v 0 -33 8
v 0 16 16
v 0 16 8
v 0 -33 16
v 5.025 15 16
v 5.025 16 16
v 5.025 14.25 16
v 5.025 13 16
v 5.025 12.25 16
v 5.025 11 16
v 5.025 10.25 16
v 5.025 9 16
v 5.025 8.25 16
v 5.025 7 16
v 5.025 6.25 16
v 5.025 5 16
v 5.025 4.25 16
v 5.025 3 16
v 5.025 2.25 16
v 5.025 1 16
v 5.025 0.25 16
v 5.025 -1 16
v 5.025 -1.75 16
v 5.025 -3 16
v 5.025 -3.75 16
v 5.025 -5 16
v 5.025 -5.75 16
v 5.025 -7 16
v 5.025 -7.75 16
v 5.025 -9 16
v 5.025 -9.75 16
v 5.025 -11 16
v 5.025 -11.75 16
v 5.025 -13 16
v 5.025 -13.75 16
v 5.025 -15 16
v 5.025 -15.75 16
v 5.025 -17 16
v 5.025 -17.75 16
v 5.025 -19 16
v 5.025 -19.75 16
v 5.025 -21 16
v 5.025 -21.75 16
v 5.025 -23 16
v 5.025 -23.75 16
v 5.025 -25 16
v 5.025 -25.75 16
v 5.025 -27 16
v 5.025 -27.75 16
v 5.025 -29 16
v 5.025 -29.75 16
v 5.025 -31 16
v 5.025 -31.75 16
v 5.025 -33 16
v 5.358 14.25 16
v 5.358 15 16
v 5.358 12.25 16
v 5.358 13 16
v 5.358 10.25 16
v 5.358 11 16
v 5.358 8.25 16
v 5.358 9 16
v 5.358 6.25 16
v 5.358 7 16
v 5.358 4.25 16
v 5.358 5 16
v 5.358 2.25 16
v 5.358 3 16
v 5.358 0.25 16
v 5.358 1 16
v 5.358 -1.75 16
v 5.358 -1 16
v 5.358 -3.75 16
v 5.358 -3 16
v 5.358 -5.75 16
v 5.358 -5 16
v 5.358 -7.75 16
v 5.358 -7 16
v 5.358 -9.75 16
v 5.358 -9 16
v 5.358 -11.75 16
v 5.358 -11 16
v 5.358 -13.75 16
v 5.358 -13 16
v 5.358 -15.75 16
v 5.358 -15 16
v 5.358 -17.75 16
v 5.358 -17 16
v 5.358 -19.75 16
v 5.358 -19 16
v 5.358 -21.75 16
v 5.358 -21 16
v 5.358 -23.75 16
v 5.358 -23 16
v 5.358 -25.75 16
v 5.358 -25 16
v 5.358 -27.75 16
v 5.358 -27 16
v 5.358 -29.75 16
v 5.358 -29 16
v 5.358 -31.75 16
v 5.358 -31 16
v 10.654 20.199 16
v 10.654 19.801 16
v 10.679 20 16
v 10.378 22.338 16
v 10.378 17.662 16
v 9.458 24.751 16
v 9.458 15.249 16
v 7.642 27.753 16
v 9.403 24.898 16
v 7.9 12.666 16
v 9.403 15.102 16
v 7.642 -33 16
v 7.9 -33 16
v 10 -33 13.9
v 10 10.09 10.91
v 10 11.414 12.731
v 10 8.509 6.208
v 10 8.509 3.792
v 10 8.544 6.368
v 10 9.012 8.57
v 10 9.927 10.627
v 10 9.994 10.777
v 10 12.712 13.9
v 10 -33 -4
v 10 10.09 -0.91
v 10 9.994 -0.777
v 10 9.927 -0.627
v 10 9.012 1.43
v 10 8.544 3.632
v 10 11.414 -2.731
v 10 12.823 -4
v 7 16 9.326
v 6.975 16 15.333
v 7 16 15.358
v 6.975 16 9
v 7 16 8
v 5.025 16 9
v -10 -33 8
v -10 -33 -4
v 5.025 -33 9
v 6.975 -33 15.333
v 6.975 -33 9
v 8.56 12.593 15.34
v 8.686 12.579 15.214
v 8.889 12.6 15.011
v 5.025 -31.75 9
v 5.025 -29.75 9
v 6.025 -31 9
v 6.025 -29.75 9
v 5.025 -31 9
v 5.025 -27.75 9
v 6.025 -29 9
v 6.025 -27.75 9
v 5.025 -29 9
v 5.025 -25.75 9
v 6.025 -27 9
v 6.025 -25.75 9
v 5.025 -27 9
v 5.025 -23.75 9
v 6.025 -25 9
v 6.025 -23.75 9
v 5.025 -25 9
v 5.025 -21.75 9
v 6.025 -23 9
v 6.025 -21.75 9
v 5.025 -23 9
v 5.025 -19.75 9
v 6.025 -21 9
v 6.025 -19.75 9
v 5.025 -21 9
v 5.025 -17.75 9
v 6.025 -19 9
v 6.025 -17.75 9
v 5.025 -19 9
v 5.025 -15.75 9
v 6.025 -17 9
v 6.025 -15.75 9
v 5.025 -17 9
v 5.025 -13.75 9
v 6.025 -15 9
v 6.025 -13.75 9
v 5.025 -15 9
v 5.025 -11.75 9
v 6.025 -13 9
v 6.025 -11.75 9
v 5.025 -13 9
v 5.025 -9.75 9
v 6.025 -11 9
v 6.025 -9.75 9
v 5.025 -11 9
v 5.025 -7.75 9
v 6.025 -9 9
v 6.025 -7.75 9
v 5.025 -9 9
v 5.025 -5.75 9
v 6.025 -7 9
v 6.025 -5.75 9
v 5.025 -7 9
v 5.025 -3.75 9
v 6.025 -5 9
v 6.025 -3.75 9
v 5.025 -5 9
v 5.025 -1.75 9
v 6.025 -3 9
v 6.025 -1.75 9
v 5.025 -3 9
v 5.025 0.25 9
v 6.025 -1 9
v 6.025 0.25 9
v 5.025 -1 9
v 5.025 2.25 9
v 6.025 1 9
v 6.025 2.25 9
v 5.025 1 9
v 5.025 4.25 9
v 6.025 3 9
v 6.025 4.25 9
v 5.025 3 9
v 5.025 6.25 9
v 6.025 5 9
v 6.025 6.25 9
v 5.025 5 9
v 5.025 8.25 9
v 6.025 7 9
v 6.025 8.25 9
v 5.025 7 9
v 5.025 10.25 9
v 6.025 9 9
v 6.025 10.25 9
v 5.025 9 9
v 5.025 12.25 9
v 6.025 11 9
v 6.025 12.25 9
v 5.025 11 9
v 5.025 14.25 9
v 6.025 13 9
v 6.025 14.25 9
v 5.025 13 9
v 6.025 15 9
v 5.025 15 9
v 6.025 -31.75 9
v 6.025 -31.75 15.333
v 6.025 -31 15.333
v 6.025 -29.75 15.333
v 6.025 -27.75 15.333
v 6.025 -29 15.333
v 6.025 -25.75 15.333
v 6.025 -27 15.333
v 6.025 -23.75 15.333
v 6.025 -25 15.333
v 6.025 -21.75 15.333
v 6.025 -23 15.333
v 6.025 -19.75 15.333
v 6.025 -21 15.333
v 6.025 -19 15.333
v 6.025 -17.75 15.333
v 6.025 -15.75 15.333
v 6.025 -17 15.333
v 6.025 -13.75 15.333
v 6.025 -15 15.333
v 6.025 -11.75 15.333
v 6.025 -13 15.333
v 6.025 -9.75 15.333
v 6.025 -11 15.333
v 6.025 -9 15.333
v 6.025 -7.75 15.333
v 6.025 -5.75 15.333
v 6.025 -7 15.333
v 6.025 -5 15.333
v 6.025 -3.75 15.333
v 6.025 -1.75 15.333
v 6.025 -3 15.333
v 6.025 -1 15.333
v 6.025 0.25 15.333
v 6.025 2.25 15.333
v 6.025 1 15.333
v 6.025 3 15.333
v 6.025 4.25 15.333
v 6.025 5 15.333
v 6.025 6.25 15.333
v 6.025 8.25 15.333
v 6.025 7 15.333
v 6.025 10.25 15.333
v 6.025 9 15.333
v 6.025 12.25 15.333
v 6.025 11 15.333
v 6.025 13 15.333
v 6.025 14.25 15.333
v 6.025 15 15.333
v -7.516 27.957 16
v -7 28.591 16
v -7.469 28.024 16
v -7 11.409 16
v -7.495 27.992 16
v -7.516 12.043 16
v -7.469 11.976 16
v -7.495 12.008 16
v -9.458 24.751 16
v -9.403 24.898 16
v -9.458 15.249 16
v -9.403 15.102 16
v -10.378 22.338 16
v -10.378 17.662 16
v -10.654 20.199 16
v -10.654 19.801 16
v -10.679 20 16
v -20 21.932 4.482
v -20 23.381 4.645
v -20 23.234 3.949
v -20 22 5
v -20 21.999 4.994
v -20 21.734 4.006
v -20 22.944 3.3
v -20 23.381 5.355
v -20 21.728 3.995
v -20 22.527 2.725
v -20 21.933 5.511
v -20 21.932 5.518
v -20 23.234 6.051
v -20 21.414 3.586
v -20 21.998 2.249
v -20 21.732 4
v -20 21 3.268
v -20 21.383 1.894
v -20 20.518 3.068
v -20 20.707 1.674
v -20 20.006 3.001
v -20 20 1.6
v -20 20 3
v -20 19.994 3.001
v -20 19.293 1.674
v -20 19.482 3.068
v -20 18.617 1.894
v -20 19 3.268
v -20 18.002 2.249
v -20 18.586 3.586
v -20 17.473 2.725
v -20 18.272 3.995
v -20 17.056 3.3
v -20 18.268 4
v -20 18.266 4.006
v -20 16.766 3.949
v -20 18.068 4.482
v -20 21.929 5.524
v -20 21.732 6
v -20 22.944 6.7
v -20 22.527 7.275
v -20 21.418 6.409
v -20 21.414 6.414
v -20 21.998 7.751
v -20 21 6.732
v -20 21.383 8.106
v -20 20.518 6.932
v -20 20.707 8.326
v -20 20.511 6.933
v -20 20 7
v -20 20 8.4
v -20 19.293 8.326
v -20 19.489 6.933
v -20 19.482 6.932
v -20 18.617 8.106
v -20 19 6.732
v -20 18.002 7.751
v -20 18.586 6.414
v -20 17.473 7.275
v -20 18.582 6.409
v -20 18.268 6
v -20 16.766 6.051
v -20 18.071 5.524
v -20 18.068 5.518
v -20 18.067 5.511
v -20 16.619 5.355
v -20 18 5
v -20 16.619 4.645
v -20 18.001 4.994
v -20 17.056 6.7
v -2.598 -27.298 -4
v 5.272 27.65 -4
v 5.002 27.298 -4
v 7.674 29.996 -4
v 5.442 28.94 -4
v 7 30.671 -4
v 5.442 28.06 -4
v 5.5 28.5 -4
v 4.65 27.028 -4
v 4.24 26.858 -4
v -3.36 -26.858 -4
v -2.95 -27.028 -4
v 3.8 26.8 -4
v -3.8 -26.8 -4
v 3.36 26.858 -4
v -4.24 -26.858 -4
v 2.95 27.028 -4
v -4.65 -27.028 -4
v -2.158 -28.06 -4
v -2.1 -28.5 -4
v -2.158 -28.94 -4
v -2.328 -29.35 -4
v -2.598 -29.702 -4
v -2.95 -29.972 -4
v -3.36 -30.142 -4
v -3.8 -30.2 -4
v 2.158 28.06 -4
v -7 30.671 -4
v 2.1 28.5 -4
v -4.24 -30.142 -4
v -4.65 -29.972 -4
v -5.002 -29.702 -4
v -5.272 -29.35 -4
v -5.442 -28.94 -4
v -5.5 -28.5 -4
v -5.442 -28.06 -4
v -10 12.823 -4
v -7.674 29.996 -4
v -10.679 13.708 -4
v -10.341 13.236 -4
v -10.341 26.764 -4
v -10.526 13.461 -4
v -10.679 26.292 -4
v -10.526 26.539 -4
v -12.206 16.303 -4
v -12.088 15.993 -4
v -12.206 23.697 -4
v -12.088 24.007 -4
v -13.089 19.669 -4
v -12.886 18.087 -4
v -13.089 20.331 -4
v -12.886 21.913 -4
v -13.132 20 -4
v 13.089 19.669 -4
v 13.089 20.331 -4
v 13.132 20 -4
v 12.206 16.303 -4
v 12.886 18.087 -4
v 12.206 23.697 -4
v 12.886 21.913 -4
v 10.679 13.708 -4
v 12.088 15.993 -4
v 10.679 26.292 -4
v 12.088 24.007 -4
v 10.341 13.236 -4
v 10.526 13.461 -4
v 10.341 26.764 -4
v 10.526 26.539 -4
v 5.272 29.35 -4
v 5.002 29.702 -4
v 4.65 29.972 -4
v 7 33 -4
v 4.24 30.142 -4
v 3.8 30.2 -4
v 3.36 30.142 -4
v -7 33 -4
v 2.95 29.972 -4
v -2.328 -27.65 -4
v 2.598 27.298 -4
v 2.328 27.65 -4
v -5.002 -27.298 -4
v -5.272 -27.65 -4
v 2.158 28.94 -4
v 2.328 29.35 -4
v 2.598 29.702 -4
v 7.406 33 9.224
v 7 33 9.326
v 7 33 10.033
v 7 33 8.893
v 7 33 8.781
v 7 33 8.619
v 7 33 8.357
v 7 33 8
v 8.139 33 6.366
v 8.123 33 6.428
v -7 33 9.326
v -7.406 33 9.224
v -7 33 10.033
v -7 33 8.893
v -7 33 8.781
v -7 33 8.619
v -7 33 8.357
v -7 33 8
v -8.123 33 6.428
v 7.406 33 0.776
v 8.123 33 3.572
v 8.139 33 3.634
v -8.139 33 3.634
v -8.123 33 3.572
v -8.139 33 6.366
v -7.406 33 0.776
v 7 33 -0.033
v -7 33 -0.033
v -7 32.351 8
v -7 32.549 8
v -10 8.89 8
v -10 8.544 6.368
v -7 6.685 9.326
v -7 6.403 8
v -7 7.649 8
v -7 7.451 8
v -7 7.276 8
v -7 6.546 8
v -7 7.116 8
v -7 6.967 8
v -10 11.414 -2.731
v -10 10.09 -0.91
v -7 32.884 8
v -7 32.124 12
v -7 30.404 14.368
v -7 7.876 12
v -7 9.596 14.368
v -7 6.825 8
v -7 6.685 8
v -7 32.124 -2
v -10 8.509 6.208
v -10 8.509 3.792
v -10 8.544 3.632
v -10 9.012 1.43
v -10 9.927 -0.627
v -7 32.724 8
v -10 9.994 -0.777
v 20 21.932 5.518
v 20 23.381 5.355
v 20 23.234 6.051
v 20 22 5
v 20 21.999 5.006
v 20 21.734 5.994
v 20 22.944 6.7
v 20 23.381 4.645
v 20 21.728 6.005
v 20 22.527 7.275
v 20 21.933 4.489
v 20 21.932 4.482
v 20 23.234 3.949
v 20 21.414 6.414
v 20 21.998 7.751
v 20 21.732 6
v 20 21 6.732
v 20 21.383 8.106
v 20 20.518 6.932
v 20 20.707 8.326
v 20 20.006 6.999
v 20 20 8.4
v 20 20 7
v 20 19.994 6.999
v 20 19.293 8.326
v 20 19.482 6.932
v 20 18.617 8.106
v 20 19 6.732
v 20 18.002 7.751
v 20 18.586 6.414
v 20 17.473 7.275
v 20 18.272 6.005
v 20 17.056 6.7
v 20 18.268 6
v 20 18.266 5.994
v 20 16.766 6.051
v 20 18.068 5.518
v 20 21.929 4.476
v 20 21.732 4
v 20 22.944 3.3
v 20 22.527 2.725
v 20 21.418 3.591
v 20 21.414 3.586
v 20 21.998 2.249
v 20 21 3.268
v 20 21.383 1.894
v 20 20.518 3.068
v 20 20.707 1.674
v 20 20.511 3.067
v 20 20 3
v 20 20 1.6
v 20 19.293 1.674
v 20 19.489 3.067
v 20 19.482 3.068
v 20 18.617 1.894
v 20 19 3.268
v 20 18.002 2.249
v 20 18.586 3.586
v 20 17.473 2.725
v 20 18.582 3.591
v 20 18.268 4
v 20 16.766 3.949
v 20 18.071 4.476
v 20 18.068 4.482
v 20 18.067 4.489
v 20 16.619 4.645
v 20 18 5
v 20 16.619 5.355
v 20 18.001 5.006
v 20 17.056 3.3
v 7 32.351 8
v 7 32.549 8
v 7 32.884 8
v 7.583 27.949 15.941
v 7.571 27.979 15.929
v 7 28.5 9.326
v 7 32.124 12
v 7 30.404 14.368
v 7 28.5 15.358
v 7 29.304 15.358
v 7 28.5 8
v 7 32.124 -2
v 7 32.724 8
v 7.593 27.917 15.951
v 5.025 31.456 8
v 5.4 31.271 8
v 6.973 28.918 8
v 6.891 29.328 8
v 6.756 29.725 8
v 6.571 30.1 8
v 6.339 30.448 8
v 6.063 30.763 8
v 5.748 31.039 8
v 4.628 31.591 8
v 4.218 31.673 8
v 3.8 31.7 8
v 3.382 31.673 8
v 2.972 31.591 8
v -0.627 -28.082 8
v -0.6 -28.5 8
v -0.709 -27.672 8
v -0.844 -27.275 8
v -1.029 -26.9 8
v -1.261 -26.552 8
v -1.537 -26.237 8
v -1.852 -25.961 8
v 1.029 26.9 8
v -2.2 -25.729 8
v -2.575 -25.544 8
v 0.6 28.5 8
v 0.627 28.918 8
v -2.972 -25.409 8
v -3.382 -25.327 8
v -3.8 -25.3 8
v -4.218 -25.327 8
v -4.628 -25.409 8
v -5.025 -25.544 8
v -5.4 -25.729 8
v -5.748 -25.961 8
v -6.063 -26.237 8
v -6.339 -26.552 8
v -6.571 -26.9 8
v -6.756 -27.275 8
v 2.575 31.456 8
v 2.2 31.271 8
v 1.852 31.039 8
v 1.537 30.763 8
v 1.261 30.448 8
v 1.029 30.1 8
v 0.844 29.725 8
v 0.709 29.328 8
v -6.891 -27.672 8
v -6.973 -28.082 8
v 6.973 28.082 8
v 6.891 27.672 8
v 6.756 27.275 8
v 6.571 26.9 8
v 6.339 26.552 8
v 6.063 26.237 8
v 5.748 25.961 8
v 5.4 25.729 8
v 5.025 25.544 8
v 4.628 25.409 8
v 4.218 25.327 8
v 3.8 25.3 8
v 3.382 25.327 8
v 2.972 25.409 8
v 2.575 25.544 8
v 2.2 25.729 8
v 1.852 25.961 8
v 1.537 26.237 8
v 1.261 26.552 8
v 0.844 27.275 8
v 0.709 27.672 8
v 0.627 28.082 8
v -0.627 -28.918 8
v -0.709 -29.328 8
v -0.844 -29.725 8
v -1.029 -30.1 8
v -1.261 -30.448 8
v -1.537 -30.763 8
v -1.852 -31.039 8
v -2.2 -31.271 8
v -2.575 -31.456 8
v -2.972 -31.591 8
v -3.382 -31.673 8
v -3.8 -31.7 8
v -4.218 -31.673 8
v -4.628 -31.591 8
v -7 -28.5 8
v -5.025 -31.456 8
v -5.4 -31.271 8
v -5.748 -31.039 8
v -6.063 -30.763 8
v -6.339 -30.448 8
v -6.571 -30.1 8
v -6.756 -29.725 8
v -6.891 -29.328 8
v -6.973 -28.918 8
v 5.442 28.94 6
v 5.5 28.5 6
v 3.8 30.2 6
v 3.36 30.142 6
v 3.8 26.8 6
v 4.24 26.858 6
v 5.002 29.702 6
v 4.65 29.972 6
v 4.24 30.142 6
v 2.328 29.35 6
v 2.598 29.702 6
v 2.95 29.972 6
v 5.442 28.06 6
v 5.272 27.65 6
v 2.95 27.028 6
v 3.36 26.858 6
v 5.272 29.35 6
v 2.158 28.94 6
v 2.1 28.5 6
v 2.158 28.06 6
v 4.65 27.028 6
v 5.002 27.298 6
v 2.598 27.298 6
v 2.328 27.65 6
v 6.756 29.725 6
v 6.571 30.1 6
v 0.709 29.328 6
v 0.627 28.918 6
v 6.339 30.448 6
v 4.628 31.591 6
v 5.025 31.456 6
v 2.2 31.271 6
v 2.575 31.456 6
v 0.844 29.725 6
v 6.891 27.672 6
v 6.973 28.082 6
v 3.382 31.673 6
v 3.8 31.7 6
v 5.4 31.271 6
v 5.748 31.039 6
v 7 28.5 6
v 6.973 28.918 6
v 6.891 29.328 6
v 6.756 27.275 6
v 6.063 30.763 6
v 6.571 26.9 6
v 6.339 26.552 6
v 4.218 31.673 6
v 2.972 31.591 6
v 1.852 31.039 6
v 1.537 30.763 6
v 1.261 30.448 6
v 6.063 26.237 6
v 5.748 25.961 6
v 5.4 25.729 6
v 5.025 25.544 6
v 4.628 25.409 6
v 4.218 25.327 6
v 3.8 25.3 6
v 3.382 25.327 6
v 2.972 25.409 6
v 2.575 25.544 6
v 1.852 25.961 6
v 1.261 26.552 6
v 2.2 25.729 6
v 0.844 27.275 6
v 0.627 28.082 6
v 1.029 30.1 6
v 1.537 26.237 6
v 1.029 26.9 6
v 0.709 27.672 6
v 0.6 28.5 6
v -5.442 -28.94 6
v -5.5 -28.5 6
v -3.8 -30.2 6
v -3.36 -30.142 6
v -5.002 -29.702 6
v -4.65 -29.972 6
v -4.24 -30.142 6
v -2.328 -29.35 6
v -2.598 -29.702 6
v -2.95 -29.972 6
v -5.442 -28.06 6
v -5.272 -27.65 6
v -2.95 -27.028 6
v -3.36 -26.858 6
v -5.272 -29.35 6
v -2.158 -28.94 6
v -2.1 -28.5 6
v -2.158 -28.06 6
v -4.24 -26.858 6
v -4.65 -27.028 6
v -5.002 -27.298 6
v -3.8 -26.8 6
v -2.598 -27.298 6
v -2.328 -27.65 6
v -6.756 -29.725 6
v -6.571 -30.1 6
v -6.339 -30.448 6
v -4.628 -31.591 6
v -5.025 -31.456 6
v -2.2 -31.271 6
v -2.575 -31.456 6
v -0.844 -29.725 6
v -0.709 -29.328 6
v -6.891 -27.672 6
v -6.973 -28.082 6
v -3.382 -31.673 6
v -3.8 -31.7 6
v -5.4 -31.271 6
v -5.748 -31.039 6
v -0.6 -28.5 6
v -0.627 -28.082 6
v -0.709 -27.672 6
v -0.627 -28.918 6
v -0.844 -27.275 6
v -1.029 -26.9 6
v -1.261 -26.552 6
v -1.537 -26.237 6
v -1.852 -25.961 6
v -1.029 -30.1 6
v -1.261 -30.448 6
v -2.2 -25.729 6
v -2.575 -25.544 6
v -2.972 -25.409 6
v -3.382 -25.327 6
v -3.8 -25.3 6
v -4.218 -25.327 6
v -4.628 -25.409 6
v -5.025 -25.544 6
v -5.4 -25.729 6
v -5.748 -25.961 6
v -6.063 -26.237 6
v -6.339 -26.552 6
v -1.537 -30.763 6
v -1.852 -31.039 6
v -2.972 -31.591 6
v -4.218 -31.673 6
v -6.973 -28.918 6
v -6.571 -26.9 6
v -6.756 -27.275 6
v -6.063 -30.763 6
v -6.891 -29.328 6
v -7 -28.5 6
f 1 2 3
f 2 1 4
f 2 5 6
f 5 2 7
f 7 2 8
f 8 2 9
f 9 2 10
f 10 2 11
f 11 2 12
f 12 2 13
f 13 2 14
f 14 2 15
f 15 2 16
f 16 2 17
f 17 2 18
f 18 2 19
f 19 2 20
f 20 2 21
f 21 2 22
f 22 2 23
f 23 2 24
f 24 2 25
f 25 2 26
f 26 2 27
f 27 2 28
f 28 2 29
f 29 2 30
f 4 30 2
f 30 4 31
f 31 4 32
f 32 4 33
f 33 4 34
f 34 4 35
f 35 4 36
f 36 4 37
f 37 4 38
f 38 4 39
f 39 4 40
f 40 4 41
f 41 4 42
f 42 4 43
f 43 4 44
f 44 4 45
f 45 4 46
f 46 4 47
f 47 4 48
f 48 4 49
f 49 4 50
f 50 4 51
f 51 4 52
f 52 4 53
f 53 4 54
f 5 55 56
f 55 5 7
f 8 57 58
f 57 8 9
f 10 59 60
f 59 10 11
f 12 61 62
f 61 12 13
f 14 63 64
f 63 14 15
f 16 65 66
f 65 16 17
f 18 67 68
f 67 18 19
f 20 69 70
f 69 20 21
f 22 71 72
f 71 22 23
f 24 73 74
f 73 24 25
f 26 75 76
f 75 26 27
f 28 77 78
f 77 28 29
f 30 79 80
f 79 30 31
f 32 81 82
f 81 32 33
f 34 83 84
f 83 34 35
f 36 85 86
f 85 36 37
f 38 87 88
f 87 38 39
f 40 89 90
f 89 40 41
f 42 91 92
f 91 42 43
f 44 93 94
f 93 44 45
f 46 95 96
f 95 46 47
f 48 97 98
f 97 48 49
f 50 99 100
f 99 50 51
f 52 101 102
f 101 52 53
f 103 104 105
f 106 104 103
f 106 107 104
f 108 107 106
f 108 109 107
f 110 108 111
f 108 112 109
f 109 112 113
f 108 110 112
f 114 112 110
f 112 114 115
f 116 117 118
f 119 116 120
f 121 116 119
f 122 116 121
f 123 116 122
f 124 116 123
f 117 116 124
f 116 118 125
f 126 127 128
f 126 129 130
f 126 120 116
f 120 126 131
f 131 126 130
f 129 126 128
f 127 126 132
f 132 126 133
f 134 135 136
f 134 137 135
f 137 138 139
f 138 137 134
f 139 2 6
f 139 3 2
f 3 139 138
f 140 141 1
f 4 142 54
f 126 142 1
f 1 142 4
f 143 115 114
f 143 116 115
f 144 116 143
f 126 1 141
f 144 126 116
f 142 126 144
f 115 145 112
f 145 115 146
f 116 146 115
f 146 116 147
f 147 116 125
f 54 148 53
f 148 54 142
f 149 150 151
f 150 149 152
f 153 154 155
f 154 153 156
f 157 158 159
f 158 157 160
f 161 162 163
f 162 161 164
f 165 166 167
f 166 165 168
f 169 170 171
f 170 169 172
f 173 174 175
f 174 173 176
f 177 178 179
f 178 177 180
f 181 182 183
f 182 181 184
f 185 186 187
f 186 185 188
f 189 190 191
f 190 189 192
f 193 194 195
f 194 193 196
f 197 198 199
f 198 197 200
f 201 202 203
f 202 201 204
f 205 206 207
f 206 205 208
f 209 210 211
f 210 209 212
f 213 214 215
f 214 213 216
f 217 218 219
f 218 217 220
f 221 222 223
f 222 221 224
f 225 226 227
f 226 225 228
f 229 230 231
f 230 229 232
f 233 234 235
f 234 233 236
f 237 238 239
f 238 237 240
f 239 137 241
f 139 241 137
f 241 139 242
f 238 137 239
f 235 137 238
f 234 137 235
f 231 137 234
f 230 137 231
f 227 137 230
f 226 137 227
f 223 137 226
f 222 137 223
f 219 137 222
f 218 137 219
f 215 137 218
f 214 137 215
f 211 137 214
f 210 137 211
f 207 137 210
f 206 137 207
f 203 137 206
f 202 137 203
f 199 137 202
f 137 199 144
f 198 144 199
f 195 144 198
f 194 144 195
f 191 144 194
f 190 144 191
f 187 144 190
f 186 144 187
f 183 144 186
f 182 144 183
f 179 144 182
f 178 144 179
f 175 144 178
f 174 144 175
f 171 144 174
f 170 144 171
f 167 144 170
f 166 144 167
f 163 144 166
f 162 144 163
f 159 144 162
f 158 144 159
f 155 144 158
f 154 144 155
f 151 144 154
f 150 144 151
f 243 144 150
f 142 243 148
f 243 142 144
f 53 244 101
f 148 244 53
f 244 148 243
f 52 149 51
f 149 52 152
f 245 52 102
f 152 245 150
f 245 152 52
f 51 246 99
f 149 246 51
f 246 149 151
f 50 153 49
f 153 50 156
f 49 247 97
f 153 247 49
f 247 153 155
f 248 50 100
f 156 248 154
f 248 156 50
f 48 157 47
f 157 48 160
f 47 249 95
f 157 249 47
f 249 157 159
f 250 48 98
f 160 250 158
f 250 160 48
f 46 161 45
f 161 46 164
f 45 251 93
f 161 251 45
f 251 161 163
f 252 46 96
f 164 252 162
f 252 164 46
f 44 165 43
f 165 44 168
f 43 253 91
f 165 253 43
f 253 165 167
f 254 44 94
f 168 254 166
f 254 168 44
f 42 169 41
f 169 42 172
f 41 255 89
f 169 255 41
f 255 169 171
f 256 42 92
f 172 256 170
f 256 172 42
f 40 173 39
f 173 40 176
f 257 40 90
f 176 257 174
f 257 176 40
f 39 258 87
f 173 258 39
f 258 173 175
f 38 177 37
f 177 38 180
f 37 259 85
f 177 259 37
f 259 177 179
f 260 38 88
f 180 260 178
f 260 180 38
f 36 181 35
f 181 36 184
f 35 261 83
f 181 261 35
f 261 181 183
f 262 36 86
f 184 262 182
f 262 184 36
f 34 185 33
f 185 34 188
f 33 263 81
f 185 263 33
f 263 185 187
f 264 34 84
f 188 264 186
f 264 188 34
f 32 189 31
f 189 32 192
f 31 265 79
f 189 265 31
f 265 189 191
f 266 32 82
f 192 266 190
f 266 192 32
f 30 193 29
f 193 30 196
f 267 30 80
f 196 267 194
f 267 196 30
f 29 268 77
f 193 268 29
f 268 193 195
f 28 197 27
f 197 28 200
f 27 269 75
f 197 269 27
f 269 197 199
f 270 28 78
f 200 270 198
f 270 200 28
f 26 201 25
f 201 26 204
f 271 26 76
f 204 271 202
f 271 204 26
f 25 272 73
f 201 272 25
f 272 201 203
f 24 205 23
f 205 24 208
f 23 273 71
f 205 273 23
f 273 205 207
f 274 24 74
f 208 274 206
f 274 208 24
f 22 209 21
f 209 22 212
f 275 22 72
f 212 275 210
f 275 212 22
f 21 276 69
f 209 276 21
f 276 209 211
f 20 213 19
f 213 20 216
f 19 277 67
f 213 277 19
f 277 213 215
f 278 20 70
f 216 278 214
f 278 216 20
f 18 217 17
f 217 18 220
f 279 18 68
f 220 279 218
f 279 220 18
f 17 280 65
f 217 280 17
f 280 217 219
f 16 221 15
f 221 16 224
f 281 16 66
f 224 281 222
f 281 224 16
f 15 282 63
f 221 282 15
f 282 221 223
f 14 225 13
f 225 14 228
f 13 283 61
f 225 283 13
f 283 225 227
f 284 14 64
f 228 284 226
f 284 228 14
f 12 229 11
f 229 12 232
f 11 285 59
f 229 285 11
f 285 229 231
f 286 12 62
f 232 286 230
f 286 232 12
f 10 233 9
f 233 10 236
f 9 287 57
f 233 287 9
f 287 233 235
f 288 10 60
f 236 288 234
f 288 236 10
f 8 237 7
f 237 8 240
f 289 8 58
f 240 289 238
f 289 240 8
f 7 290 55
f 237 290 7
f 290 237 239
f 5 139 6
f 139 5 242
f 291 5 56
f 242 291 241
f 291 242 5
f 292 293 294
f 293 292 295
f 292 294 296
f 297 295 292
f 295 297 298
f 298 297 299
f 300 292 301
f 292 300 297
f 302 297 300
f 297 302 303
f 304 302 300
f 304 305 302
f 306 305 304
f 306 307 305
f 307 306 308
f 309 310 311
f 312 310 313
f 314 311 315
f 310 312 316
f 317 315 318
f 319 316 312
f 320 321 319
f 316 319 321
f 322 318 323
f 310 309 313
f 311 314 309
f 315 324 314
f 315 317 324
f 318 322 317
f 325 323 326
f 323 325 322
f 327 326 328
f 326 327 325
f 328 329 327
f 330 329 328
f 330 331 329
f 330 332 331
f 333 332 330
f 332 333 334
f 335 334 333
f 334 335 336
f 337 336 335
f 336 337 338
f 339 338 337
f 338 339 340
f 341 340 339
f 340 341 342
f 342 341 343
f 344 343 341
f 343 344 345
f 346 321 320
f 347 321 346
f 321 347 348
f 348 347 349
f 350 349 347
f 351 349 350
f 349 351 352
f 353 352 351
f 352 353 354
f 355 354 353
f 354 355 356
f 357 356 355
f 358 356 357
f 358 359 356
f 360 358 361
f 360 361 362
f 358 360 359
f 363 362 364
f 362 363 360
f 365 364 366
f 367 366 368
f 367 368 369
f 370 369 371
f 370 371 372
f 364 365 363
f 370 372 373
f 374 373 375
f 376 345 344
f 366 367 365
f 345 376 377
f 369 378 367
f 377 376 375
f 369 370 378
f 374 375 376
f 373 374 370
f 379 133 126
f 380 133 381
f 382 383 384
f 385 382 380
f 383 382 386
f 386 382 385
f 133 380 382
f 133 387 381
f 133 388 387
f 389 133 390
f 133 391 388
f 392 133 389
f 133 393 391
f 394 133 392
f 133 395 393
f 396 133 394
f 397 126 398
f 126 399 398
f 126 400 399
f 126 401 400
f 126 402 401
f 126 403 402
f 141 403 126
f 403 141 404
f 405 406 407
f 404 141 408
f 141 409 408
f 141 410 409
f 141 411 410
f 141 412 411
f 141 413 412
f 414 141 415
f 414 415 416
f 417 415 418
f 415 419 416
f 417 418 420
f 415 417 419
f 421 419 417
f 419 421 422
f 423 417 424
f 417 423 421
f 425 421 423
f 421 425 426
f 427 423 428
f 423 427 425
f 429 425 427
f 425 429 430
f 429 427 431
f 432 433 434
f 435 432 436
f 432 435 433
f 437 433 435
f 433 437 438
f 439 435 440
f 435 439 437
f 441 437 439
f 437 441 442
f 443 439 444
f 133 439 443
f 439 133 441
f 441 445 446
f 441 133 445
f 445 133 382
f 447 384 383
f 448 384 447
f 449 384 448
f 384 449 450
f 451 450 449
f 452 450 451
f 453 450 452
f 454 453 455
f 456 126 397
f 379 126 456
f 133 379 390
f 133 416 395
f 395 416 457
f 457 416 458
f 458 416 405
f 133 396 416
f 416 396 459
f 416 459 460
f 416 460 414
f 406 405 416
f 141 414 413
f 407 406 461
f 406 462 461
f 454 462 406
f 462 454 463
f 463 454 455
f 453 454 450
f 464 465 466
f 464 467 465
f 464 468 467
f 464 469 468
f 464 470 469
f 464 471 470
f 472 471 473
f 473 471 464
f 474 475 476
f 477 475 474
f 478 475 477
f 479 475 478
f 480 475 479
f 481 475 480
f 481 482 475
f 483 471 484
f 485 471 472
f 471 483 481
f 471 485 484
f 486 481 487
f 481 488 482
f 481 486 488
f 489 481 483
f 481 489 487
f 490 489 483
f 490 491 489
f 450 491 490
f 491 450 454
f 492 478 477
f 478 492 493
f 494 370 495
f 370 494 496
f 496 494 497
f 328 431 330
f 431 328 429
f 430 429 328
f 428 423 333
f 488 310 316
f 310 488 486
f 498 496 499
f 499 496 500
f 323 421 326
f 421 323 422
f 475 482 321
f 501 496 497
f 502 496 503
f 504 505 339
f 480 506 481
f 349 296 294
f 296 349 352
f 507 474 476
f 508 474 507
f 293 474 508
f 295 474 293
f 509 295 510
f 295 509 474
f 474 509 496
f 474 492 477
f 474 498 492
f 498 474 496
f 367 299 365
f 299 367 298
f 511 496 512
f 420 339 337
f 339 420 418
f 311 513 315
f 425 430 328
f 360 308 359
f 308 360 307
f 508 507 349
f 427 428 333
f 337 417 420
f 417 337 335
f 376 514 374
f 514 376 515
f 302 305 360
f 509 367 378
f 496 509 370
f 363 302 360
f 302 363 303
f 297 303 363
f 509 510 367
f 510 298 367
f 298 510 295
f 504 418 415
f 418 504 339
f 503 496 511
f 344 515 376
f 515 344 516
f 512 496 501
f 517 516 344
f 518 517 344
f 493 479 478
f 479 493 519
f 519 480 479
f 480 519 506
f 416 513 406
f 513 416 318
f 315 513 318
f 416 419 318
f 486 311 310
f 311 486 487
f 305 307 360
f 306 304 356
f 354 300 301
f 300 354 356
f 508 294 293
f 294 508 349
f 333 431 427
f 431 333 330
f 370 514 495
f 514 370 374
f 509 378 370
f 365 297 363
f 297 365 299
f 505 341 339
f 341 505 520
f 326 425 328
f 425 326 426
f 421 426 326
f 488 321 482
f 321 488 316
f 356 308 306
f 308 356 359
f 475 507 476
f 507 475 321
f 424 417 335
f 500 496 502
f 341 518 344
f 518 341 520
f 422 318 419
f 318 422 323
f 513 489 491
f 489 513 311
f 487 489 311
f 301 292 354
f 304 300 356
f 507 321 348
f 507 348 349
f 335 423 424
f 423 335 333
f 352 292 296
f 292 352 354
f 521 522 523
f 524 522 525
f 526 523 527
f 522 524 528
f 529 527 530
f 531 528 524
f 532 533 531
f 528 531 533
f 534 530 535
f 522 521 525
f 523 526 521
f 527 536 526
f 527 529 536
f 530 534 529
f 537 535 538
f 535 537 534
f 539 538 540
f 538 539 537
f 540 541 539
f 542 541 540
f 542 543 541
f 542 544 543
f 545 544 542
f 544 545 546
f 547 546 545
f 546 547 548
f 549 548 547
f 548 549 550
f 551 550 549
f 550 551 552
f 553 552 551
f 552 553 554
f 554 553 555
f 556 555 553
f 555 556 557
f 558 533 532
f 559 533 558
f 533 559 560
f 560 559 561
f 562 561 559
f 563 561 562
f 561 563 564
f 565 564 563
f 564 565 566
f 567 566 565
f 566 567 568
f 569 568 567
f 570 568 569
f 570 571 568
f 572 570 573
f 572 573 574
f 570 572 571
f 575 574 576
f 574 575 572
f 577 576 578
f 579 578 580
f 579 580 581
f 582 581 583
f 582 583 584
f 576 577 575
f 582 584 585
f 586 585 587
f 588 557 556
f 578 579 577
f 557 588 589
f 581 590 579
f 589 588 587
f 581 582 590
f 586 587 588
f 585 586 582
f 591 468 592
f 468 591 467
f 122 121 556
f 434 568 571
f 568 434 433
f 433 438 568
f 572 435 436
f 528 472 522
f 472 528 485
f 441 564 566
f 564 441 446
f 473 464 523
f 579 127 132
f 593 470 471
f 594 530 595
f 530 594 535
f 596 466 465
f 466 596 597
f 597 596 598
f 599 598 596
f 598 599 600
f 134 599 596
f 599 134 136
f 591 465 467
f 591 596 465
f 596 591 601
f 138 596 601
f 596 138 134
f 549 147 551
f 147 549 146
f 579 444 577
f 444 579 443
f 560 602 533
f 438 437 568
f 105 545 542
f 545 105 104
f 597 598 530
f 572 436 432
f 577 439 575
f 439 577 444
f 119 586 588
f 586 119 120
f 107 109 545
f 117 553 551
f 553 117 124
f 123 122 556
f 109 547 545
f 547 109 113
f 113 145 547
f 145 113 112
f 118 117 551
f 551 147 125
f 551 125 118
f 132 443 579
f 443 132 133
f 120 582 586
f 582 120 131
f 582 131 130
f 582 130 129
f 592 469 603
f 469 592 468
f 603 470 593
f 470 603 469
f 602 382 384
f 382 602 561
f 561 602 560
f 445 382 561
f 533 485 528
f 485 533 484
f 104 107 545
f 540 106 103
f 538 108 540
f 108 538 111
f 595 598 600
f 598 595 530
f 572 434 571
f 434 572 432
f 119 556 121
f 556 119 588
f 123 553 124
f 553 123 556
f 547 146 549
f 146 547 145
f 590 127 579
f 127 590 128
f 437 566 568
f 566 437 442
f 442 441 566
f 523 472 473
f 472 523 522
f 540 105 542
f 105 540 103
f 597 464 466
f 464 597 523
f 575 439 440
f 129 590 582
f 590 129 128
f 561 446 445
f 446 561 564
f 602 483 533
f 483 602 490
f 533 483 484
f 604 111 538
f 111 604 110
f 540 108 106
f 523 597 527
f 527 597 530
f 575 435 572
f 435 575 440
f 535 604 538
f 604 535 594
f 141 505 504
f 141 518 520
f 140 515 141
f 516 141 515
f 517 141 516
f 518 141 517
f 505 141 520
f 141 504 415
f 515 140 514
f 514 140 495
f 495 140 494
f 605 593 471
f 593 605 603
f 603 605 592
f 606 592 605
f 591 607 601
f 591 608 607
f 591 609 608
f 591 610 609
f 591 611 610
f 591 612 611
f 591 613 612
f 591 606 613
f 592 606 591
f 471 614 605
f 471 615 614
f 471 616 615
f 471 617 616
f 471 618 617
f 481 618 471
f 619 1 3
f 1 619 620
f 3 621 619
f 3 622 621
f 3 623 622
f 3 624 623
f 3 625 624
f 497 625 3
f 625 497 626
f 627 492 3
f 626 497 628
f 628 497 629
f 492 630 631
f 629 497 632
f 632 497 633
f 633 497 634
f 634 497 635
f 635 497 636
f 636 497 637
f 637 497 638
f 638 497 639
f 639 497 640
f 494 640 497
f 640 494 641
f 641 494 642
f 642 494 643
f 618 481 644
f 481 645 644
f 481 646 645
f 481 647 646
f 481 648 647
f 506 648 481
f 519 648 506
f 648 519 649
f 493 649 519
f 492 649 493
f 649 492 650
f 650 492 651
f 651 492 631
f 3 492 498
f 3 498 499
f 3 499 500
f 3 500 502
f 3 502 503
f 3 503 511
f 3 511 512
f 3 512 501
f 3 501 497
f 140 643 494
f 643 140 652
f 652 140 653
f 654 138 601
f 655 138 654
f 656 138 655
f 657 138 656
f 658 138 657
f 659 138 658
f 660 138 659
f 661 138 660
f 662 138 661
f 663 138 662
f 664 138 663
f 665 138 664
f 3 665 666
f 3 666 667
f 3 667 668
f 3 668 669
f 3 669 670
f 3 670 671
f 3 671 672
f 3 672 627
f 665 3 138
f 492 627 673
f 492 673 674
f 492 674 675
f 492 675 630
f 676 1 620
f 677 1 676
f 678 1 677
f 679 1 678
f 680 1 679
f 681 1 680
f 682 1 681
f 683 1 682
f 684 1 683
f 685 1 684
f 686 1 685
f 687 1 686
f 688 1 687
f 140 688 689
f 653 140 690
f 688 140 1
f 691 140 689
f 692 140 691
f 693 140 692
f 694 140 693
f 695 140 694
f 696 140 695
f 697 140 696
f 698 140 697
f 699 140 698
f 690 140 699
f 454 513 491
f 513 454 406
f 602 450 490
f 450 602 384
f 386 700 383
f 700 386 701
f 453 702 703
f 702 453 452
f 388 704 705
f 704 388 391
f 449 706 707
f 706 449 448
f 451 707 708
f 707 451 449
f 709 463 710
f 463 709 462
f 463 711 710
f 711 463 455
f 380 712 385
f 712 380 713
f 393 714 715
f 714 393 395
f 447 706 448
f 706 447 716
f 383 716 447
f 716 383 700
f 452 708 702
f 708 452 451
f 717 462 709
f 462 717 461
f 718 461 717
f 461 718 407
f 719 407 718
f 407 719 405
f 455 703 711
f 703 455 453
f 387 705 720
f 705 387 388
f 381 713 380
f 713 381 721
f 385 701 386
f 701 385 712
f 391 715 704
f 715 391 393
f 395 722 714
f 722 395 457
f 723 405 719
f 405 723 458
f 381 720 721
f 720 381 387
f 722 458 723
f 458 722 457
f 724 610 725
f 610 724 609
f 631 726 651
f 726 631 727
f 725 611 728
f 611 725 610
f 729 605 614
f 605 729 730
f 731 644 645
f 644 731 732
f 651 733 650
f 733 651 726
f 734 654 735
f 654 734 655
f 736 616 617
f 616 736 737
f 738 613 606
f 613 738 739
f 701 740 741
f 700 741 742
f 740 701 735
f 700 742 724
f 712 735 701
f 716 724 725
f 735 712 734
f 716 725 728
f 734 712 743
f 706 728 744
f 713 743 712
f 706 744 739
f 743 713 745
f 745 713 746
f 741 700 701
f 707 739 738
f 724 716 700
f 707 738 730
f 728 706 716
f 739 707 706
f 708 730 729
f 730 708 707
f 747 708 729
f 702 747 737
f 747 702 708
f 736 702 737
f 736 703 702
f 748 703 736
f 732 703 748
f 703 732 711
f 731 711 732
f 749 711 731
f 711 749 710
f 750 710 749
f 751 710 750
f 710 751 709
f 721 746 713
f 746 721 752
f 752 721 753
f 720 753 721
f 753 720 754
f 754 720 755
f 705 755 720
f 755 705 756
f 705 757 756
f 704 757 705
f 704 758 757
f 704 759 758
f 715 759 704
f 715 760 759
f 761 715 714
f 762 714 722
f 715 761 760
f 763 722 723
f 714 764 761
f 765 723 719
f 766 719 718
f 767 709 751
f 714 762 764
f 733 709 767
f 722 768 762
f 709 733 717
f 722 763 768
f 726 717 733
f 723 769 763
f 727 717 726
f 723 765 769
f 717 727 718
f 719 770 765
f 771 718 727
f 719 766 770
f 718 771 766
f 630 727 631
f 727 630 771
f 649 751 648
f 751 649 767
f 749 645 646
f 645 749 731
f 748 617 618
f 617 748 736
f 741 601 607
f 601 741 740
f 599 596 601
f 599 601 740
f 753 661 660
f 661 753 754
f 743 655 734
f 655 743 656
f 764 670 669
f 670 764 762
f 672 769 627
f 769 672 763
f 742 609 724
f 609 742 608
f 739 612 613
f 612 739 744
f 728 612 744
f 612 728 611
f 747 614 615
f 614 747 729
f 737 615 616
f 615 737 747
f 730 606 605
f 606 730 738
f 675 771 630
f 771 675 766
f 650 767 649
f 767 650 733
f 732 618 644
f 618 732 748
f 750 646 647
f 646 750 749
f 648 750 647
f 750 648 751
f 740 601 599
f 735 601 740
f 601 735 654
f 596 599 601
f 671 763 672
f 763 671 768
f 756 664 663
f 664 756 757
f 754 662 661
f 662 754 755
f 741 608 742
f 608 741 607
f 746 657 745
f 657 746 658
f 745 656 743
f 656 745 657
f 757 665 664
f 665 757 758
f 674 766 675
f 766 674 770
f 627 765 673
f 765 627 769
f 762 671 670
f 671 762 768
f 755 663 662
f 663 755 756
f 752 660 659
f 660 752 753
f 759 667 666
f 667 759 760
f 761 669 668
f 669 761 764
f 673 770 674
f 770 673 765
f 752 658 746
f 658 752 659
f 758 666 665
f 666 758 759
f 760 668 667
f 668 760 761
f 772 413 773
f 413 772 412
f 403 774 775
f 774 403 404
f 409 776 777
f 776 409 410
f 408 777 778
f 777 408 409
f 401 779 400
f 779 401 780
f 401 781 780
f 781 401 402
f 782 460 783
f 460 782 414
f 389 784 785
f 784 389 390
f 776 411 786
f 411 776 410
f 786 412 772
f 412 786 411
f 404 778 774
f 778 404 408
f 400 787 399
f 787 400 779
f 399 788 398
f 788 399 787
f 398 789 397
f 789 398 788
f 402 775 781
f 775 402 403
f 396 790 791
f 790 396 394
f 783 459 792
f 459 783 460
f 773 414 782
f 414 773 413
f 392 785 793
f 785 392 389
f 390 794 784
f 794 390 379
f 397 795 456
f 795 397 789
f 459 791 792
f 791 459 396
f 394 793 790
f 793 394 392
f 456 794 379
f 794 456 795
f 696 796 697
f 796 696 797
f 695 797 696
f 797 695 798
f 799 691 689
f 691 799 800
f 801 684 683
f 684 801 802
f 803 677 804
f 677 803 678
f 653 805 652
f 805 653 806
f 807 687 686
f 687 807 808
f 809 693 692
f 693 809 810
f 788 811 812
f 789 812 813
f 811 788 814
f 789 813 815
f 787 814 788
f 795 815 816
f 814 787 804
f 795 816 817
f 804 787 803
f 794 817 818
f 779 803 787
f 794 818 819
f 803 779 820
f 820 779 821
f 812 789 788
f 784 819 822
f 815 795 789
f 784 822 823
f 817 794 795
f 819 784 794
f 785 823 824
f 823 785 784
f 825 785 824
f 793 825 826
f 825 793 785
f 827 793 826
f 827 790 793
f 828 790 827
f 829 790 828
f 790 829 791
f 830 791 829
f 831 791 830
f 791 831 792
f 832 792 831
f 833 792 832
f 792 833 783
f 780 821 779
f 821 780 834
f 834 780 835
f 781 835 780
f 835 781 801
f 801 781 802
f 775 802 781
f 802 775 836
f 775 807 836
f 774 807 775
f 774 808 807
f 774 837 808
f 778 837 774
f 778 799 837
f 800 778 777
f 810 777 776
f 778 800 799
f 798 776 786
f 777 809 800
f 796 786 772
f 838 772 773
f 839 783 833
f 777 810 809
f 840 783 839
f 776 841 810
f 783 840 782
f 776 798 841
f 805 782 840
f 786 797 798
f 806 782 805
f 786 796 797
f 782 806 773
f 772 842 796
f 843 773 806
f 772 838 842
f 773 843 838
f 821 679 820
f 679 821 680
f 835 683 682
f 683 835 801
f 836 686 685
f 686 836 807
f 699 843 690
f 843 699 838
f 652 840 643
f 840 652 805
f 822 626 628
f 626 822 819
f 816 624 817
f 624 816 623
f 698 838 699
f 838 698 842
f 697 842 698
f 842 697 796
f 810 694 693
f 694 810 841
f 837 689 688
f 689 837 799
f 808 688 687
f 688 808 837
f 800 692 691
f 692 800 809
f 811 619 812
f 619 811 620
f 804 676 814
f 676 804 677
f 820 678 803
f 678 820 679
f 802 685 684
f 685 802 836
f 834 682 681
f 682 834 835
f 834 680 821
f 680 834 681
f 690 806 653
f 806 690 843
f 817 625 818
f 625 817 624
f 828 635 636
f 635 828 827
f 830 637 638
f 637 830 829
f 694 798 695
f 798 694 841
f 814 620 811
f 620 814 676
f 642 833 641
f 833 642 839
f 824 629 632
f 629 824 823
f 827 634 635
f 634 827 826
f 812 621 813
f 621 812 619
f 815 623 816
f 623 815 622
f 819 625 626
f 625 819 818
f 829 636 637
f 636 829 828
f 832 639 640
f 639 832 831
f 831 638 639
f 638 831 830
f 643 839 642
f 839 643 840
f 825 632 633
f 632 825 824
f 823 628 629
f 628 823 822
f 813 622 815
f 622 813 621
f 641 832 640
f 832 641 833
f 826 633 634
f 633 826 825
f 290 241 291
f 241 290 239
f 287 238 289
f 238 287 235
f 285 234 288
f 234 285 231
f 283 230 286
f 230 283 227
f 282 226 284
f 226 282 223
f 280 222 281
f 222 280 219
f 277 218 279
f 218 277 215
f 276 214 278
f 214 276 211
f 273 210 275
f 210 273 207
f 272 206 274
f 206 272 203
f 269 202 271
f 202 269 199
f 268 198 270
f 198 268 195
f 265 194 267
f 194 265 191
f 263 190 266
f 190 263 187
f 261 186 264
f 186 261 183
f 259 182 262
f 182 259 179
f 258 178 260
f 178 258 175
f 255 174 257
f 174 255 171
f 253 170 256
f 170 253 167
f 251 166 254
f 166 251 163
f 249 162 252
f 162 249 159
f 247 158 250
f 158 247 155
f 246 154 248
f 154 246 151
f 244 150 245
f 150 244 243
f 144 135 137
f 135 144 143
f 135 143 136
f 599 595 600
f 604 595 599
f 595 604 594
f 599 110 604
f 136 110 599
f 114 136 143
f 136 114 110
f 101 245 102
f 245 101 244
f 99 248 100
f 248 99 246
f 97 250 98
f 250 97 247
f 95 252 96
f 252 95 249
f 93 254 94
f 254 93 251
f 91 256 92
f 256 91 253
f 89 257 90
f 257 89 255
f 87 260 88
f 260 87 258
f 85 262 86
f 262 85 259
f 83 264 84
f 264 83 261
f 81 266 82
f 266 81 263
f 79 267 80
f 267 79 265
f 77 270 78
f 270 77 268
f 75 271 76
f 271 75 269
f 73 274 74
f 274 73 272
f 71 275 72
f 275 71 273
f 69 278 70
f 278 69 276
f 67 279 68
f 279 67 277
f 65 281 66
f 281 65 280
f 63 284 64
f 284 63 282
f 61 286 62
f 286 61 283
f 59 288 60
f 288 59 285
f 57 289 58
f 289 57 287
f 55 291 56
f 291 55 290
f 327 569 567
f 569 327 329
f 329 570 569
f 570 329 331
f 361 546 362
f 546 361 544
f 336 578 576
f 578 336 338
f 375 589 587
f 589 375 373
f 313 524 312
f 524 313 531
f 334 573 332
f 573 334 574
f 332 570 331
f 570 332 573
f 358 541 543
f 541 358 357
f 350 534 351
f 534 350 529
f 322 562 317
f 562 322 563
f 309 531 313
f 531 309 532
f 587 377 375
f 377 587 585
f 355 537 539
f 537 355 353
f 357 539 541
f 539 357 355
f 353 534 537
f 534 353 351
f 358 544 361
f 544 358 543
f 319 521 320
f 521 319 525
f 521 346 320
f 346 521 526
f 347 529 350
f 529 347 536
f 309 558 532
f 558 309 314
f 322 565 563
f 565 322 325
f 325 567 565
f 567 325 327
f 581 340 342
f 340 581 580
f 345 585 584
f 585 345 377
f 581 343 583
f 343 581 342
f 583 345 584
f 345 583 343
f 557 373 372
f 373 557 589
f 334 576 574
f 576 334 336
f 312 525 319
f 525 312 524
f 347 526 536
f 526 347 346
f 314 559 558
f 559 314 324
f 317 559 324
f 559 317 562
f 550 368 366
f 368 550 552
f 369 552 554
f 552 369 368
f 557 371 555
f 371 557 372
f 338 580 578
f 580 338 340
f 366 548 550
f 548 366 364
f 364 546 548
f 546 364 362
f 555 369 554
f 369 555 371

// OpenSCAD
separation = 40;

width = 20;
height = 66;

horn_thickness = 10;
horn_x = 7;
horn_y = 20;

belt_width = 6+1;
belt_x = 6.5;
belt_z = 10-1;
belt_thickness = 0.95;

thickness = belt_z +3;

m3_radius = 3.4/2;
m3_nut_w  = 5.5+0.3;
m3_nut_h = 2.4;

module carriage() {
	difference() {
	union() {
      // Ball joint mount horns.
      for (x = [-1, 1]) {
        scale([x, 1, 1]) intersection() {
          translate([0, 0, horn_thickness/2+1])
            cube([separation, height, horn_thickness+10], center=true);
          translate([horn_x, horn_y, horn_thickness/2]) rotate([0, 90, 0])
            cylinder(r1=14, r2=3.4, h=separation/2-horn_x);
        }
      }

      translate([-width/2, -height/2, -4])
			cube([width, height-6, thickness]);
      translate([-horn_x, horn_y+4, -4])
			cube([horn_x*2, height/2-horn_y-4, thickness]);

		difference() {
		   translate([0, -height/2, 0])
   			cube([width/2, height/2+horn_y-4, belt_z+belt_width]);
		   translate([belt_x+1.4, -height/2, belt_z+belt_width])
   		rotate([0,45,0]) cube([width/2, height/2+horn_y-4, belt_z+belt_width]);
		}
	}

	//translate([-7,horn_y-4,horn_thickness/2])
	//	cube([14,8,belt_z+belt_width]);
	//for(s=[1,-1]) scale([s,1,1])
	//translate([-7-m3_nut_h,horn_y,horn_thickness/2])
	//rotate([0,90,0]) 	rotate([0,0,30])
	//	cylinder(r=m3_nut_w/2*1.154734411, h=m3_nut_h+7.1, $fn=6);

	translate([belt_x-belt_thickness/2, -height/2, belt_z])
		cube([belt_thickness, height, belt_width]);

	for(y=[-height/2:2:horn_y]) {
		translate([belt_x-belt_thickness/2-1.0, y, belt_z])
			cube([1.1,1.25,belt_width+2]);
	}
	translate([belt_x, 0, belt_z+belt_width])
	rotate([0,45,0]) cube([belt_thickness*1.7,height,belt_thickness*1.7], center=true);

	translate([0,horn_y,horn_thickness/2])
	rotate([0,90,0])
		cylinder(r=2, h=separation+1, center=true,$fn=24);

	for(a=[0,180]) rotate([0,0,a]) {
	translate([width/4-1.2,height/2-4.5,-4]) 
		cylinder(r=m3_radius,h=20,$fn=24);
	translate([width/4-1.2,height/2-4.5,6]) 
		cylinder(r=3.2,h=belt_width+belt_z+3,$fn=48);
	}


	}
}

carriage();
